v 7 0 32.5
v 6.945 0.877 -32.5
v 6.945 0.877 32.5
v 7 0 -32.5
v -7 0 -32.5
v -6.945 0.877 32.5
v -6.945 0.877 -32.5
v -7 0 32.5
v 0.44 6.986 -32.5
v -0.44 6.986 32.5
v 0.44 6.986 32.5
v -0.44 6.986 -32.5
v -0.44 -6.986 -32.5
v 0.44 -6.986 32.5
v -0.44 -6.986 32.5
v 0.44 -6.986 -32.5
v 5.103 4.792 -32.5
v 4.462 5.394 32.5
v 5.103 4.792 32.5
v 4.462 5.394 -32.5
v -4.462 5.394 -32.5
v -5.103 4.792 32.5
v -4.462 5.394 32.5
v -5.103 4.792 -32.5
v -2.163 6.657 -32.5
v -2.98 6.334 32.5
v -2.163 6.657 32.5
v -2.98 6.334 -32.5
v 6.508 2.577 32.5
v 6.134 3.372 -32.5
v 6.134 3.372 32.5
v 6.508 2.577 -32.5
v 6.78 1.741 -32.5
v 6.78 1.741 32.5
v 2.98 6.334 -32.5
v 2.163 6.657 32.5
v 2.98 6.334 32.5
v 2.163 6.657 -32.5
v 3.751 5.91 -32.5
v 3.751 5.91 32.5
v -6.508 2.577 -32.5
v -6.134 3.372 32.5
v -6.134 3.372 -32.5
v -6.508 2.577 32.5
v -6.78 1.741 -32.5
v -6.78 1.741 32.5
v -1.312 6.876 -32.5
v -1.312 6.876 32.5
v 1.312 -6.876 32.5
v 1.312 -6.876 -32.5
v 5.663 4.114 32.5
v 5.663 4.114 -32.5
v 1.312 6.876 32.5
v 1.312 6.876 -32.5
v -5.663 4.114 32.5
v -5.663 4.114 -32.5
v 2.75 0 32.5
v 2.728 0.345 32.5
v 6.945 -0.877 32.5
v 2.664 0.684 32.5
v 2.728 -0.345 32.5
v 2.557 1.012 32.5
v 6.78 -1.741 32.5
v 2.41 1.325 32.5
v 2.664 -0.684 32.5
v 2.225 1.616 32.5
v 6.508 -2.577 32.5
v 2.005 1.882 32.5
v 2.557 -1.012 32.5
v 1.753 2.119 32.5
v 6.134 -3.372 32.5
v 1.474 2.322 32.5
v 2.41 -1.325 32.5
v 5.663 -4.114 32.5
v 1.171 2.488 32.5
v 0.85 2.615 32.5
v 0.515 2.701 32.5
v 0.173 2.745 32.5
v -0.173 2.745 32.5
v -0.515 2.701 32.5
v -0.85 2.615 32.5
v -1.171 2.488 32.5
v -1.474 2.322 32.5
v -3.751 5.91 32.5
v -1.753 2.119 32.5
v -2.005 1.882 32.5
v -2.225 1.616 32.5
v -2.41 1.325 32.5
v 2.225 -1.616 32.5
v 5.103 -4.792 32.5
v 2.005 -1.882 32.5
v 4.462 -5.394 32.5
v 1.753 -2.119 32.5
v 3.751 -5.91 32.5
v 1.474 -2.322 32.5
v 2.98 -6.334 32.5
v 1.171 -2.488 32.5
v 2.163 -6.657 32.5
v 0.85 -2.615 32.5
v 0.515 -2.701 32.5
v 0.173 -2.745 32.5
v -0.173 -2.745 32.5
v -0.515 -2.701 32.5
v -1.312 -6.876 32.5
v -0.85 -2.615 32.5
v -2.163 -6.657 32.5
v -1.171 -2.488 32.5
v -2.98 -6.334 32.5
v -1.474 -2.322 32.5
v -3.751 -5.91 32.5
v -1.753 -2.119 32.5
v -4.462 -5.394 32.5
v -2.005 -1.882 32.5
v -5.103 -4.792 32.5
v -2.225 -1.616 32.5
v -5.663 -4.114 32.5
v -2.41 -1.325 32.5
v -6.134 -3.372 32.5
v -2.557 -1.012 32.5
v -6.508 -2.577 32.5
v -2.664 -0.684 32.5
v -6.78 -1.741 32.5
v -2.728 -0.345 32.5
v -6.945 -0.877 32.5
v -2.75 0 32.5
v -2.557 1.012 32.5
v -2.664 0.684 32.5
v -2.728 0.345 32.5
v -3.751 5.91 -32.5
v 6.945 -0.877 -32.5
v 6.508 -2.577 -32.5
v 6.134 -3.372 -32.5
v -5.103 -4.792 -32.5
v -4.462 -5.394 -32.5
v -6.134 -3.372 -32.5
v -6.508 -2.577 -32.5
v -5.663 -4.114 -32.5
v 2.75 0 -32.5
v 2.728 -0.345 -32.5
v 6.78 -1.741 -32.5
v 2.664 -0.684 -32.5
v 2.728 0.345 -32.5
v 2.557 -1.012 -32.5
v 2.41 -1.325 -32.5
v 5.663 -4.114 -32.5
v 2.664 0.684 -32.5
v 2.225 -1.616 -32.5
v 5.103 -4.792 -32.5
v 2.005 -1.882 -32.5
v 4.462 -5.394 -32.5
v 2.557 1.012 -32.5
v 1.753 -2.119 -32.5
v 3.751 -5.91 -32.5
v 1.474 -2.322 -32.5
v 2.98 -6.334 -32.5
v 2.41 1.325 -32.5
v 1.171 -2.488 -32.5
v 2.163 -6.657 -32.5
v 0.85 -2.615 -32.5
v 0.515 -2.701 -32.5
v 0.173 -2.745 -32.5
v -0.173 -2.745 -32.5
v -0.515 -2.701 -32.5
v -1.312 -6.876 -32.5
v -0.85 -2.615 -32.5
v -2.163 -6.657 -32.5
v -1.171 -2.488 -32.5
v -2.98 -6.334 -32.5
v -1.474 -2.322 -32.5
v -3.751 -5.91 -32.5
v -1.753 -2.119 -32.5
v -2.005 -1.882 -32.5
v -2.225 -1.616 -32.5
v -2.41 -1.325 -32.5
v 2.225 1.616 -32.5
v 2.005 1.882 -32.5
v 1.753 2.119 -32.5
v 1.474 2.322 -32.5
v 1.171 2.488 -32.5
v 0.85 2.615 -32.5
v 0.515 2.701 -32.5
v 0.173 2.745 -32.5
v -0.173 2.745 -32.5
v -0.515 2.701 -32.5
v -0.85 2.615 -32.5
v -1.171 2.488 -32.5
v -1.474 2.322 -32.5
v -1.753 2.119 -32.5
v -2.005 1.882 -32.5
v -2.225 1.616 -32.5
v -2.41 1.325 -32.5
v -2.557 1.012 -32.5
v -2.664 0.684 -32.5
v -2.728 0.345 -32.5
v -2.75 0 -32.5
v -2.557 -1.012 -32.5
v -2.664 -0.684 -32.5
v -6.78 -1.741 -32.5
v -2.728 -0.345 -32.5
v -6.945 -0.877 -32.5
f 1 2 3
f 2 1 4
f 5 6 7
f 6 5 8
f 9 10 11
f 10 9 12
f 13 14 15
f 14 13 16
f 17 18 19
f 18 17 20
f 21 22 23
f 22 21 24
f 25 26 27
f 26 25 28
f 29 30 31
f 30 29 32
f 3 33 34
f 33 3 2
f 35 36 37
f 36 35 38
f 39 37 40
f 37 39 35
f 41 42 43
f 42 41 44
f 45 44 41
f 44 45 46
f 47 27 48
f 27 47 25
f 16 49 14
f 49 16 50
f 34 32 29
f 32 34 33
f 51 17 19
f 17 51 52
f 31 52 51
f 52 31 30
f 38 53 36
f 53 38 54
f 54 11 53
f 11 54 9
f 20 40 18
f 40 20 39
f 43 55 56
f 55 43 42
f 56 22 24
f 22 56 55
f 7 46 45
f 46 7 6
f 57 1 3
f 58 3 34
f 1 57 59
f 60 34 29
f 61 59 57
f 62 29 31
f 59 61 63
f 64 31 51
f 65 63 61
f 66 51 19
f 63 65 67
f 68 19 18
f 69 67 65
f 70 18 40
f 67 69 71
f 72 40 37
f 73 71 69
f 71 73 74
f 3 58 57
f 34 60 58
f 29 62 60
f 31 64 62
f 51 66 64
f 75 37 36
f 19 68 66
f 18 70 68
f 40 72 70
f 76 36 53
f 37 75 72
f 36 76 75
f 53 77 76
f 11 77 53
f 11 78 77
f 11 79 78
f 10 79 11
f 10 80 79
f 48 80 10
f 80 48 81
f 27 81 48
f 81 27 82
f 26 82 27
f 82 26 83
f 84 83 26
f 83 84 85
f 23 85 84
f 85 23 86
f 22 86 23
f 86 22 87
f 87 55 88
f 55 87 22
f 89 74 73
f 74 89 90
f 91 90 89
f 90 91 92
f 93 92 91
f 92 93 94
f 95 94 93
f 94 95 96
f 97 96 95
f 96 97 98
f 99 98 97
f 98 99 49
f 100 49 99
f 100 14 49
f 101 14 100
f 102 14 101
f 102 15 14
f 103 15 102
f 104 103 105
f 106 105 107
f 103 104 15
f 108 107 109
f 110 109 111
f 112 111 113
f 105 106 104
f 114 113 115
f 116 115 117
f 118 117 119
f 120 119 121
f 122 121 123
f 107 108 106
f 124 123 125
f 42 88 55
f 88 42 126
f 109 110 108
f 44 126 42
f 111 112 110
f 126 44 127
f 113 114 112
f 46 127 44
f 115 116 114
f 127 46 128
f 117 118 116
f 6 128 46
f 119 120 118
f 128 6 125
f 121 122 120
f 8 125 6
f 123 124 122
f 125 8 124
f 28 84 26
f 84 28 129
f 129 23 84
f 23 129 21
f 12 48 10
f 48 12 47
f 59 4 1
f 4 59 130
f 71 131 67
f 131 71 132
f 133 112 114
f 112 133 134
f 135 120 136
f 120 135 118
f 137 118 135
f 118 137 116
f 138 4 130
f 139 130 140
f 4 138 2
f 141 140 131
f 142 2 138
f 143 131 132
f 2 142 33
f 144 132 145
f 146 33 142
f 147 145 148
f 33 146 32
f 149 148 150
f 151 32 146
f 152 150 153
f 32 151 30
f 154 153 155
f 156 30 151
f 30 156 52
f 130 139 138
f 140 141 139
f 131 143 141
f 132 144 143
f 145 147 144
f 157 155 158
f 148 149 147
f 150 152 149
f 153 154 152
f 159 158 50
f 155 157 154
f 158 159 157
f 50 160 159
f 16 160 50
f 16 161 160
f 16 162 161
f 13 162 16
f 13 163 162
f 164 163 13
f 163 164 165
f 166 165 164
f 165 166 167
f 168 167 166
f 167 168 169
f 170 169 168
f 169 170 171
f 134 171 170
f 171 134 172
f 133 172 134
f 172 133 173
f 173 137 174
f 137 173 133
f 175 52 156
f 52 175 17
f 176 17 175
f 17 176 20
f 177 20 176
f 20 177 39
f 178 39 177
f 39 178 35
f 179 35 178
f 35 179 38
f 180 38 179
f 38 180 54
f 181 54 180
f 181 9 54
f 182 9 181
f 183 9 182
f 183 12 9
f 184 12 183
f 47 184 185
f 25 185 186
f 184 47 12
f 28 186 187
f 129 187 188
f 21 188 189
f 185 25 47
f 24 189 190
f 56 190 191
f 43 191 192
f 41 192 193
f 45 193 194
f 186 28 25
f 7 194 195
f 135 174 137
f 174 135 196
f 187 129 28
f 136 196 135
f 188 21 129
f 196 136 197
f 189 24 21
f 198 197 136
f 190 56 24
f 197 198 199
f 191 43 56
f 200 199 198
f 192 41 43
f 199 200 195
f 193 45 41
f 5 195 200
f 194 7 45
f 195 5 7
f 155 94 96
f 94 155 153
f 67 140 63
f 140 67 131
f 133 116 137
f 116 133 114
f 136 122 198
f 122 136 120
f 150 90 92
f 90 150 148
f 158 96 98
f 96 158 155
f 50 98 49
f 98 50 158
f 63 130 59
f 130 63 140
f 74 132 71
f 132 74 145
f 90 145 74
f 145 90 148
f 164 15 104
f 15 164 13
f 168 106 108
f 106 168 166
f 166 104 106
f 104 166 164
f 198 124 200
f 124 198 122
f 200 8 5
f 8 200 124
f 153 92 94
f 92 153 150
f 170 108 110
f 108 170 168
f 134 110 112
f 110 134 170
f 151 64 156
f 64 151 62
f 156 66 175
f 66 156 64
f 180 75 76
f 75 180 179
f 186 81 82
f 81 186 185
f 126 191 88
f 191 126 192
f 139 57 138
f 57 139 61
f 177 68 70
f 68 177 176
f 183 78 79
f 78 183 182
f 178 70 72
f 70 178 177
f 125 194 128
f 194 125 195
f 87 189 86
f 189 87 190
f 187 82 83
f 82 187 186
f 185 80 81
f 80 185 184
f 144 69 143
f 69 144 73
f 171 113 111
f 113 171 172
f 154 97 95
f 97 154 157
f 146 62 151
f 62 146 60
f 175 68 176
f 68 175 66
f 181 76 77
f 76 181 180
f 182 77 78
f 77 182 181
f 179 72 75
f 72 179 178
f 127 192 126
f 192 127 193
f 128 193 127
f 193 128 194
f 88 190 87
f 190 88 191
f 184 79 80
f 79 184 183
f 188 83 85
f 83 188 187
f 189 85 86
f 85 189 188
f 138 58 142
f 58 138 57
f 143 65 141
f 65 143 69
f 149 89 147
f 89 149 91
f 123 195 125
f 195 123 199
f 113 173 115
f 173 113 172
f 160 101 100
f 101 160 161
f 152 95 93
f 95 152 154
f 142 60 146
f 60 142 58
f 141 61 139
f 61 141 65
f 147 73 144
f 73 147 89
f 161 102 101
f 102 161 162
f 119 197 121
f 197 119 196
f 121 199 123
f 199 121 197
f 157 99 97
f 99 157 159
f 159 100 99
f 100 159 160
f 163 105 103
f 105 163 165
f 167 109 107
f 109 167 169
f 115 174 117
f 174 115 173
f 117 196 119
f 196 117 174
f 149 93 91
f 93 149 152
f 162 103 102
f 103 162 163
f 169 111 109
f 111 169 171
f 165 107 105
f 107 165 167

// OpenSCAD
$fn = 50;


difference() {
	union() {
		translate(v = [0, 0, -32.5000000000]) {
			cylinder(h = 65, r = 7.0000000000);
		}
	}
	union() {
		translate(v = [0, 0, -100.0000000000]) {
			cylinder(h = 200, r = 2.7500000000);
		}
	}
}
